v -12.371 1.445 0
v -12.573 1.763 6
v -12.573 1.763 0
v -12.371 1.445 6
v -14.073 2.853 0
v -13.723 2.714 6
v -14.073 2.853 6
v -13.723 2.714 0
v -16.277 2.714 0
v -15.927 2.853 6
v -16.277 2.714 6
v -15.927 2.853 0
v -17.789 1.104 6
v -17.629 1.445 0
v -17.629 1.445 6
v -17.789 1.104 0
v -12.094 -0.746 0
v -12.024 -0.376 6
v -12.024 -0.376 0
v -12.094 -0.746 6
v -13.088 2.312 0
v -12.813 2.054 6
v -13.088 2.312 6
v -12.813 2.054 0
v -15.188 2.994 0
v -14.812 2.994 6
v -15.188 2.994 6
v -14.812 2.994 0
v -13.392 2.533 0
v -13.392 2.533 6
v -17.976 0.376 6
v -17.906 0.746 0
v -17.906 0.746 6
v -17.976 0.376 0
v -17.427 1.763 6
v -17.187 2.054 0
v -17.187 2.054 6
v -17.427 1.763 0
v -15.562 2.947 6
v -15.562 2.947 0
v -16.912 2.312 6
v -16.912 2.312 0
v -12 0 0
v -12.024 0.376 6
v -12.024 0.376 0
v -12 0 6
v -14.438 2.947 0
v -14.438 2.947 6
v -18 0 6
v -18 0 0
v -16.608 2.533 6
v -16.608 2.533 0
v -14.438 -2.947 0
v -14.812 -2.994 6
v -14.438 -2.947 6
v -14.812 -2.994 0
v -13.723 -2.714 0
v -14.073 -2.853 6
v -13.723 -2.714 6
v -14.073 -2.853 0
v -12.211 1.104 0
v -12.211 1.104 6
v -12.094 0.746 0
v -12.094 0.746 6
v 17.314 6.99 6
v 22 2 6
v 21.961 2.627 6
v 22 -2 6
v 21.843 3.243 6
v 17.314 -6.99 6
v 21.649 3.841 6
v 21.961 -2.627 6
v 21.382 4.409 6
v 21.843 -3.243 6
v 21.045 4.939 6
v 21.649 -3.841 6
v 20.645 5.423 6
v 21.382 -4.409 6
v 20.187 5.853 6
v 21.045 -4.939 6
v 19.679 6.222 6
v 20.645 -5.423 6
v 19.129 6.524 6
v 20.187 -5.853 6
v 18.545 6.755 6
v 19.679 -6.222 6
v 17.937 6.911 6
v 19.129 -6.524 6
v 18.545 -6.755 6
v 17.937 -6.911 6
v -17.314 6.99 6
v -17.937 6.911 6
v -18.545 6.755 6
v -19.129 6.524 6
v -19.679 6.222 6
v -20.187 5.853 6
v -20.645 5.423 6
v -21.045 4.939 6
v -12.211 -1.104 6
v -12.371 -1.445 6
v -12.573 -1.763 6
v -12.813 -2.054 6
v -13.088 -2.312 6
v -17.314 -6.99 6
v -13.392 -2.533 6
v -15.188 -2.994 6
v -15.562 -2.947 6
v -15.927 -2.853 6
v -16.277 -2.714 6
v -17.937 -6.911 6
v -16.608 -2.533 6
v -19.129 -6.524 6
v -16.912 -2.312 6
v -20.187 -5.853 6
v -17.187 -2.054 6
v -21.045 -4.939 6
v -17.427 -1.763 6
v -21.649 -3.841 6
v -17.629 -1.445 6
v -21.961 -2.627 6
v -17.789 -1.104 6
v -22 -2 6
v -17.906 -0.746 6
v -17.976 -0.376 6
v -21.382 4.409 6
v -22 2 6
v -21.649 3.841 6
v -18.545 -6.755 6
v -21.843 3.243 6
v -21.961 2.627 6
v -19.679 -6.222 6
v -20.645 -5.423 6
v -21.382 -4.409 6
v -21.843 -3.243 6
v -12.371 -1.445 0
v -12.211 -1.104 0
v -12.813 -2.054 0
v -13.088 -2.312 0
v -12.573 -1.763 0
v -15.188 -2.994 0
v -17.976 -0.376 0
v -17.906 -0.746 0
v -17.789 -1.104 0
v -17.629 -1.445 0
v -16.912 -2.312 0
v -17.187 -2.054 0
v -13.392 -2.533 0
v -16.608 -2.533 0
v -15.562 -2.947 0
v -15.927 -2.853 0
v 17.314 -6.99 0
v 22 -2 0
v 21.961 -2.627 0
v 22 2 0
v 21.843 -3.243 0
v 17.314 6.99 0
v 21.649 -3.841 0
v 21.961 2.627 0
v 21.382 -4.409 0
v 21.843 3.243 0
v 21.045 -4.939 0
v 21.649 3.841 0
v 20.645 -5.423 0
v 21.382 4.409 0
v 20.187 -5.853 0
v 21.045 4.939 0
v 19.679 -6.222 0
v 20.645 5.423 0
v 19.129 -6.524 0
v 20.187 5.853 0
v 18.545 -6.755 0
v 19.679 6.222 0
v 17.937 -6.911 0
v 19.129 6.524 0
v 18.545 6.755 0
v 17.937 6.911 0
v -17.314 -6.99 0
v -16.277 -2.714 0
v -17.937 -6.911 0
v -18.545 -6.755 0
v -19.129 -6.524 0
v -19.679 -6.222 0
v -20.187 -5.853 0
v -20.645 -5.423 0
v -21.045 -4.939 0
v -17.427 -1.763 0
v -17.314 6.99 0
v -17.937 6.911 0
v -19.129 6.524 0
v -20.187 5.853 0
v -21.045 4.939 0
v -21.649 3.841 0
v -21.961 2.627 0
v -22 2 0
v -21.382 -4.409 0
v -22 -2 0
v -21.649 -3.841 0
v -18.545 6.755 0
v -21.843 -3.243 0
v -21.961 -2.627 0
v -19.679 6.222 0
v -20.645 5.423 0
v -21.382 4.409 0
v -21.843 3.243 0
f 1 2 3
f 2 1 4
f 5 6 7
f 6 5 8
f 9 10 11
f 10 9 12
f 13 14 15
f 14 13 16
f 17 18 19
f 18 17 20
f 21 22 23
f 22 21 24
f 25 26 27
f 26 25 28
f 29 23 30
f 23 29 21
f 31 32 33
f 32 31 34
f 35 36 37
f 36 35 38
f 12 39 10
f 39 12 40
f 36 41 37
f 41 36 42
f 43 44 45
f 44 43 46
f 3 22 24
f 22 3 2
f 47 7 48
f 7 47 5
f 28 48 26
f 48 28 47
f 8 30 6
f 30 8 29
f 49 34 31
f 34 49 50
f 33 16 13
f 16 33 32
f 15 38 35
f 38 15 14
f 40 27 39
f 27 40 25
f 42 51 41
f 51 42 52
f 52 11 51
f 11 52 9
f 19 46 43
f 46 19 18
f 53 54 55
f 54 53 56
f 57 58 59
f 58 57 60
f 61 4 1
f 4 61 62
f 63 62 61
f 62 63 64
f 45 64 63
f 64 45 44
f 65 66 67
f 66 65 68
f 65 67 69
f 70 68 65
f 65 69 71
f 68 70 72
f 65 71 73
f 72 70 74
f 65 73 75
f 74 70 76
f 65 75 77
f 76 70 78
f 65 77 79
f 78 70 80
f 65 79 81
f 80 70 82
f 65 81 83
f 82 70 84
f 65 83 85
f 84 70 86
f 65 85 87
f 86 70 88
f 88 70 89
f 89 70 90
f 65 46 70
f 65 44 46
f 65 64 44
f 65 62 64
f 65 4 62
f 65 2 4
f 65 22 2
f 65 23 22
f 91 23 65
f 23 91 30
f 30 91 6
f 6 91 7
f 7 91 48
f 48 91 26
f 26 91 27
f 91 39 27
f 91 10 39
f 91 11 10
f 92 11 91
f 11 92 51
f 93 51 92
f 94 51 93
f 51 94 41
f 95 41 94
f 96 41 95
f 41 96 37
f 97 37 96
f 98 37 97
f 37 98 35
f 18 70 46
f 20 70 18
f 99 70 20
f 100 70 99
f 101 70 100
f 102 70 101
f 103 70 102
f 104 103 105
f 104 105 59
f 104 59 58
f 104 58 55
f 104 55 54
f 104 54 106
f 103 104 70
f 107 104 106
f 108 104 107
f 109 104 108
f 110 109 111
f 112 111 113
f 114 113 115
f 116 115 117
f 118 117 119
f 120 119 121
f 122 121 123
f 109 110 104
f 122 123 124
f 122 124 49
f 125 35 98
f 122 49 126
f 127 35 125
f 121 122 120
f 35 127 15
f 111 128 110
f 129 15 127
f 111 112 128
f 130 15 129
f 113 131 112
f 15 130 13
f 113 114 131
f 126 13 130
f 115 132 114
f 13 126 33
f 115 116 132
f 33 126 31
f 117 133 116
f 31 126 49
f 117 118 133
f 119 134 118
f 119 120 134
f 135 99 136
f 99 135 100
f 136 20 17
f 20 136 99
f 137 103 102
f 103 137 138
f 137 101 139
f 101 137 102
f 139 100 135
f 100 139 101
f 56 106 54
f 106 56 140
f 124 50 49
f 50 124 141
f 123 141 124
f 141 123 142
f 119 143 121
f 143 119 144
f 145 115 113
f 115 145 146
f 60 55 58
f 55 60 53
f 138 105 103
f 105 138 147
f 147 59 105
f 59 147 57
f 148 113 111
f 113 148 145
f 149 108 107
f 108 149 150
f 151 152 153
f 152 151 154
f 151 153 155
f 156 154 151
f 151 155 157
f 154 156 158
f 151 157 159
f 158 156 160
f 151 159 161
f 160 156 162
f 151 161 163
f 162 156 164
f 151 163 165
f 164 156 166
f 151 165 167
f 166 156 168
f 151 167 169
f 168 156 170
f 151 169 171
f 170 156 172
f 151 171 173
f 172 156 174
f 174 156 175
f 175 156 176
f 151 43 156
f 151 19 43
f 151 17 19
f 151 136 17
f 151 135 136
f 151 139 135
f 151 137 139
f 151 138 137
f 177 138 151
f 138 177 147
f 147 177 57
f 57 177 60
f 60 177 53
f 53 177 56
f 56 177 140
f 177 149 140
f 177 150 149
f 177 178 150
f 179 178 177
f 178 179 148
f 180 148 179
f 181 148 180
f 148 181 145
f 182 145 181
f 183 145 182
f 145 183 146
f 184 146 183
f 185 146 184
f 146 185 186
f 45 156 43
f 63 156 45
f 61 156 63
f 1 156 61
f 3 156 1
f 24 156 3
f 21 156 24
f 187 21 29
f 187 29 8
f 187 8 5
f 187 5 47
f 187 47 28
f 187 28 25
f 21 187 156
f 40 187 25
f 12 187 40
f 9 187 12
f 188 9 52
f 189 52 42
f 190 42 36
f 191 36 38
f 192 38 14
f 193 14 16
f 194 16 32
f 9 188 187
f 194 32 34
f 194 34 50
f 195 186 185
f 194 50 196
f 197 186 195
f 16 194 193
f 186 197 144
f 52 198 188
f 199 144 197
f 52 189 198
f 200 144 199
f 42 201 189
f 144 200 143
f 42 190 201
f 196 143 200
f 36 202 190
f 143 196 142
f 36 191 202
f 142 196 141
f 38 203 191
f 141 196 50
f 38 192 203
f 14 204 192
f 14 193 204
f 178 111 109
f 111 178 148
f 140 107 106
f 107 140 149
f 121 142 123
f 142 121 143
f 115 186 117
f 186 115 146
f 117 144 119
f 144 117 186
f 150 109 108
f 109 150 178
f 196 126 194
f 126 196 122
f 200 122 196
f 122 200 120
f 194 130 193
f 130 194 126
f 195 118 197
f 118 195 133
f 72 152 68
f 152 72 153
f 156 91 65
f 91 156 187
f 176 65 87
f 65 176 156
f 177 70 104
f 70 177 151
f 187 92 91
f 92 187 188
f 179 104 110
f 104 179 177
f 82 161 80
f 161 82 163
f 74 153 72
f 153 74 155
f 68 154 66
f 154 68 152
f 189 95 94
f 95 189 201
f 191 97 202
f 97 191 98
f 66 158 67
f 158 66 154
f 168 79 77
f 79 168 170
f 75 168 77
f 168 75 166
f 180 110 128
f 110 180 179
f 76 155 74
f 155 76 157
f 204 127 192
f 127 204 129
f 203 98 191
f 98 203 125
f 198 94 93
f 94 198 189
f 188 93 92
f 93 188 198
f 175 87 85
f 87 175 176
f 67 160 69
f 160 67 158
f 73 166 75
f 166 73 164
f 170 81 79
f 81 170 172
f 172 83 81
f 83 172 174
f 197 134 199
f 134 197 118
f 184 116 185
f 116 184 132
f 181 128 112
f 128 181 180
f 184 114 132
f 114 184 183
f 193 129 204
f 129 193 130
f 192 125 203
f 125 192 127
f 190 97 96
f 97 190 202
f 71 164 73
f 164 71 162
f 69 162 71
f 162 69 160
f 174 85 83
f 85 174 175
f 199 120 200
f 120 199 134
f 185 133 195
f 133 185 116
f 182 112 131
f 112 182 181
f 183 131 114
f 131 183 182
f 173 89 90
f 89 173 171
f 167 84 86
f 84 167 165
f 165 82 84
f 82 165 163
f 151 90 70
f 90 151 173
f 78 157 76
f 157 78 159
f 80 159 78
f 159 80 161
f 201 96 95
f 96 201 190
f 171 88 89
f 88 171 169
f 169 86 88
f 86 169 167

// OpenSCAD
$fn = 50;


difference() {
	union() {
		hull() {
			translate(v = [-17.0000000000, 2.0000000000, 0]) {
				cylinder(h = 6, r = 5);
			}
			translate(v = [17.0000000000, 2.0000000000, 0]) {
				cylinder(h = 6, r = 5);
			}
			translate(v = [-17.0000000000, -2.0000000000, 0]) {
				cylinder(h = 6, r = 5);
			}
			translate(v = [17.0000000000, -2.0000000000, 0]) {
				cylinder(h = 6, r = 5);
			}
		}
	}
	union() {
		translate(v = [-15.0000000000, 0.0000000000, 0]) {
			cylinder(h = 6, r = 3.0000000000);
		}
		translate(v = [-15.0000000000, 0.0000000000, 0]) {
			cylinder(h = 6, r = 1.5000000000);
		}
		translate(v = [-15.0000000000, 0.0000000000, 0]) {
			cylinder(h = 6, r = 1.5000000000);
		}
		translate(v = [-15.0000000000, 0.0000000000, 0]) {
			cylinder(h = 6, r = 1.5000000000);
		}
	}
}
